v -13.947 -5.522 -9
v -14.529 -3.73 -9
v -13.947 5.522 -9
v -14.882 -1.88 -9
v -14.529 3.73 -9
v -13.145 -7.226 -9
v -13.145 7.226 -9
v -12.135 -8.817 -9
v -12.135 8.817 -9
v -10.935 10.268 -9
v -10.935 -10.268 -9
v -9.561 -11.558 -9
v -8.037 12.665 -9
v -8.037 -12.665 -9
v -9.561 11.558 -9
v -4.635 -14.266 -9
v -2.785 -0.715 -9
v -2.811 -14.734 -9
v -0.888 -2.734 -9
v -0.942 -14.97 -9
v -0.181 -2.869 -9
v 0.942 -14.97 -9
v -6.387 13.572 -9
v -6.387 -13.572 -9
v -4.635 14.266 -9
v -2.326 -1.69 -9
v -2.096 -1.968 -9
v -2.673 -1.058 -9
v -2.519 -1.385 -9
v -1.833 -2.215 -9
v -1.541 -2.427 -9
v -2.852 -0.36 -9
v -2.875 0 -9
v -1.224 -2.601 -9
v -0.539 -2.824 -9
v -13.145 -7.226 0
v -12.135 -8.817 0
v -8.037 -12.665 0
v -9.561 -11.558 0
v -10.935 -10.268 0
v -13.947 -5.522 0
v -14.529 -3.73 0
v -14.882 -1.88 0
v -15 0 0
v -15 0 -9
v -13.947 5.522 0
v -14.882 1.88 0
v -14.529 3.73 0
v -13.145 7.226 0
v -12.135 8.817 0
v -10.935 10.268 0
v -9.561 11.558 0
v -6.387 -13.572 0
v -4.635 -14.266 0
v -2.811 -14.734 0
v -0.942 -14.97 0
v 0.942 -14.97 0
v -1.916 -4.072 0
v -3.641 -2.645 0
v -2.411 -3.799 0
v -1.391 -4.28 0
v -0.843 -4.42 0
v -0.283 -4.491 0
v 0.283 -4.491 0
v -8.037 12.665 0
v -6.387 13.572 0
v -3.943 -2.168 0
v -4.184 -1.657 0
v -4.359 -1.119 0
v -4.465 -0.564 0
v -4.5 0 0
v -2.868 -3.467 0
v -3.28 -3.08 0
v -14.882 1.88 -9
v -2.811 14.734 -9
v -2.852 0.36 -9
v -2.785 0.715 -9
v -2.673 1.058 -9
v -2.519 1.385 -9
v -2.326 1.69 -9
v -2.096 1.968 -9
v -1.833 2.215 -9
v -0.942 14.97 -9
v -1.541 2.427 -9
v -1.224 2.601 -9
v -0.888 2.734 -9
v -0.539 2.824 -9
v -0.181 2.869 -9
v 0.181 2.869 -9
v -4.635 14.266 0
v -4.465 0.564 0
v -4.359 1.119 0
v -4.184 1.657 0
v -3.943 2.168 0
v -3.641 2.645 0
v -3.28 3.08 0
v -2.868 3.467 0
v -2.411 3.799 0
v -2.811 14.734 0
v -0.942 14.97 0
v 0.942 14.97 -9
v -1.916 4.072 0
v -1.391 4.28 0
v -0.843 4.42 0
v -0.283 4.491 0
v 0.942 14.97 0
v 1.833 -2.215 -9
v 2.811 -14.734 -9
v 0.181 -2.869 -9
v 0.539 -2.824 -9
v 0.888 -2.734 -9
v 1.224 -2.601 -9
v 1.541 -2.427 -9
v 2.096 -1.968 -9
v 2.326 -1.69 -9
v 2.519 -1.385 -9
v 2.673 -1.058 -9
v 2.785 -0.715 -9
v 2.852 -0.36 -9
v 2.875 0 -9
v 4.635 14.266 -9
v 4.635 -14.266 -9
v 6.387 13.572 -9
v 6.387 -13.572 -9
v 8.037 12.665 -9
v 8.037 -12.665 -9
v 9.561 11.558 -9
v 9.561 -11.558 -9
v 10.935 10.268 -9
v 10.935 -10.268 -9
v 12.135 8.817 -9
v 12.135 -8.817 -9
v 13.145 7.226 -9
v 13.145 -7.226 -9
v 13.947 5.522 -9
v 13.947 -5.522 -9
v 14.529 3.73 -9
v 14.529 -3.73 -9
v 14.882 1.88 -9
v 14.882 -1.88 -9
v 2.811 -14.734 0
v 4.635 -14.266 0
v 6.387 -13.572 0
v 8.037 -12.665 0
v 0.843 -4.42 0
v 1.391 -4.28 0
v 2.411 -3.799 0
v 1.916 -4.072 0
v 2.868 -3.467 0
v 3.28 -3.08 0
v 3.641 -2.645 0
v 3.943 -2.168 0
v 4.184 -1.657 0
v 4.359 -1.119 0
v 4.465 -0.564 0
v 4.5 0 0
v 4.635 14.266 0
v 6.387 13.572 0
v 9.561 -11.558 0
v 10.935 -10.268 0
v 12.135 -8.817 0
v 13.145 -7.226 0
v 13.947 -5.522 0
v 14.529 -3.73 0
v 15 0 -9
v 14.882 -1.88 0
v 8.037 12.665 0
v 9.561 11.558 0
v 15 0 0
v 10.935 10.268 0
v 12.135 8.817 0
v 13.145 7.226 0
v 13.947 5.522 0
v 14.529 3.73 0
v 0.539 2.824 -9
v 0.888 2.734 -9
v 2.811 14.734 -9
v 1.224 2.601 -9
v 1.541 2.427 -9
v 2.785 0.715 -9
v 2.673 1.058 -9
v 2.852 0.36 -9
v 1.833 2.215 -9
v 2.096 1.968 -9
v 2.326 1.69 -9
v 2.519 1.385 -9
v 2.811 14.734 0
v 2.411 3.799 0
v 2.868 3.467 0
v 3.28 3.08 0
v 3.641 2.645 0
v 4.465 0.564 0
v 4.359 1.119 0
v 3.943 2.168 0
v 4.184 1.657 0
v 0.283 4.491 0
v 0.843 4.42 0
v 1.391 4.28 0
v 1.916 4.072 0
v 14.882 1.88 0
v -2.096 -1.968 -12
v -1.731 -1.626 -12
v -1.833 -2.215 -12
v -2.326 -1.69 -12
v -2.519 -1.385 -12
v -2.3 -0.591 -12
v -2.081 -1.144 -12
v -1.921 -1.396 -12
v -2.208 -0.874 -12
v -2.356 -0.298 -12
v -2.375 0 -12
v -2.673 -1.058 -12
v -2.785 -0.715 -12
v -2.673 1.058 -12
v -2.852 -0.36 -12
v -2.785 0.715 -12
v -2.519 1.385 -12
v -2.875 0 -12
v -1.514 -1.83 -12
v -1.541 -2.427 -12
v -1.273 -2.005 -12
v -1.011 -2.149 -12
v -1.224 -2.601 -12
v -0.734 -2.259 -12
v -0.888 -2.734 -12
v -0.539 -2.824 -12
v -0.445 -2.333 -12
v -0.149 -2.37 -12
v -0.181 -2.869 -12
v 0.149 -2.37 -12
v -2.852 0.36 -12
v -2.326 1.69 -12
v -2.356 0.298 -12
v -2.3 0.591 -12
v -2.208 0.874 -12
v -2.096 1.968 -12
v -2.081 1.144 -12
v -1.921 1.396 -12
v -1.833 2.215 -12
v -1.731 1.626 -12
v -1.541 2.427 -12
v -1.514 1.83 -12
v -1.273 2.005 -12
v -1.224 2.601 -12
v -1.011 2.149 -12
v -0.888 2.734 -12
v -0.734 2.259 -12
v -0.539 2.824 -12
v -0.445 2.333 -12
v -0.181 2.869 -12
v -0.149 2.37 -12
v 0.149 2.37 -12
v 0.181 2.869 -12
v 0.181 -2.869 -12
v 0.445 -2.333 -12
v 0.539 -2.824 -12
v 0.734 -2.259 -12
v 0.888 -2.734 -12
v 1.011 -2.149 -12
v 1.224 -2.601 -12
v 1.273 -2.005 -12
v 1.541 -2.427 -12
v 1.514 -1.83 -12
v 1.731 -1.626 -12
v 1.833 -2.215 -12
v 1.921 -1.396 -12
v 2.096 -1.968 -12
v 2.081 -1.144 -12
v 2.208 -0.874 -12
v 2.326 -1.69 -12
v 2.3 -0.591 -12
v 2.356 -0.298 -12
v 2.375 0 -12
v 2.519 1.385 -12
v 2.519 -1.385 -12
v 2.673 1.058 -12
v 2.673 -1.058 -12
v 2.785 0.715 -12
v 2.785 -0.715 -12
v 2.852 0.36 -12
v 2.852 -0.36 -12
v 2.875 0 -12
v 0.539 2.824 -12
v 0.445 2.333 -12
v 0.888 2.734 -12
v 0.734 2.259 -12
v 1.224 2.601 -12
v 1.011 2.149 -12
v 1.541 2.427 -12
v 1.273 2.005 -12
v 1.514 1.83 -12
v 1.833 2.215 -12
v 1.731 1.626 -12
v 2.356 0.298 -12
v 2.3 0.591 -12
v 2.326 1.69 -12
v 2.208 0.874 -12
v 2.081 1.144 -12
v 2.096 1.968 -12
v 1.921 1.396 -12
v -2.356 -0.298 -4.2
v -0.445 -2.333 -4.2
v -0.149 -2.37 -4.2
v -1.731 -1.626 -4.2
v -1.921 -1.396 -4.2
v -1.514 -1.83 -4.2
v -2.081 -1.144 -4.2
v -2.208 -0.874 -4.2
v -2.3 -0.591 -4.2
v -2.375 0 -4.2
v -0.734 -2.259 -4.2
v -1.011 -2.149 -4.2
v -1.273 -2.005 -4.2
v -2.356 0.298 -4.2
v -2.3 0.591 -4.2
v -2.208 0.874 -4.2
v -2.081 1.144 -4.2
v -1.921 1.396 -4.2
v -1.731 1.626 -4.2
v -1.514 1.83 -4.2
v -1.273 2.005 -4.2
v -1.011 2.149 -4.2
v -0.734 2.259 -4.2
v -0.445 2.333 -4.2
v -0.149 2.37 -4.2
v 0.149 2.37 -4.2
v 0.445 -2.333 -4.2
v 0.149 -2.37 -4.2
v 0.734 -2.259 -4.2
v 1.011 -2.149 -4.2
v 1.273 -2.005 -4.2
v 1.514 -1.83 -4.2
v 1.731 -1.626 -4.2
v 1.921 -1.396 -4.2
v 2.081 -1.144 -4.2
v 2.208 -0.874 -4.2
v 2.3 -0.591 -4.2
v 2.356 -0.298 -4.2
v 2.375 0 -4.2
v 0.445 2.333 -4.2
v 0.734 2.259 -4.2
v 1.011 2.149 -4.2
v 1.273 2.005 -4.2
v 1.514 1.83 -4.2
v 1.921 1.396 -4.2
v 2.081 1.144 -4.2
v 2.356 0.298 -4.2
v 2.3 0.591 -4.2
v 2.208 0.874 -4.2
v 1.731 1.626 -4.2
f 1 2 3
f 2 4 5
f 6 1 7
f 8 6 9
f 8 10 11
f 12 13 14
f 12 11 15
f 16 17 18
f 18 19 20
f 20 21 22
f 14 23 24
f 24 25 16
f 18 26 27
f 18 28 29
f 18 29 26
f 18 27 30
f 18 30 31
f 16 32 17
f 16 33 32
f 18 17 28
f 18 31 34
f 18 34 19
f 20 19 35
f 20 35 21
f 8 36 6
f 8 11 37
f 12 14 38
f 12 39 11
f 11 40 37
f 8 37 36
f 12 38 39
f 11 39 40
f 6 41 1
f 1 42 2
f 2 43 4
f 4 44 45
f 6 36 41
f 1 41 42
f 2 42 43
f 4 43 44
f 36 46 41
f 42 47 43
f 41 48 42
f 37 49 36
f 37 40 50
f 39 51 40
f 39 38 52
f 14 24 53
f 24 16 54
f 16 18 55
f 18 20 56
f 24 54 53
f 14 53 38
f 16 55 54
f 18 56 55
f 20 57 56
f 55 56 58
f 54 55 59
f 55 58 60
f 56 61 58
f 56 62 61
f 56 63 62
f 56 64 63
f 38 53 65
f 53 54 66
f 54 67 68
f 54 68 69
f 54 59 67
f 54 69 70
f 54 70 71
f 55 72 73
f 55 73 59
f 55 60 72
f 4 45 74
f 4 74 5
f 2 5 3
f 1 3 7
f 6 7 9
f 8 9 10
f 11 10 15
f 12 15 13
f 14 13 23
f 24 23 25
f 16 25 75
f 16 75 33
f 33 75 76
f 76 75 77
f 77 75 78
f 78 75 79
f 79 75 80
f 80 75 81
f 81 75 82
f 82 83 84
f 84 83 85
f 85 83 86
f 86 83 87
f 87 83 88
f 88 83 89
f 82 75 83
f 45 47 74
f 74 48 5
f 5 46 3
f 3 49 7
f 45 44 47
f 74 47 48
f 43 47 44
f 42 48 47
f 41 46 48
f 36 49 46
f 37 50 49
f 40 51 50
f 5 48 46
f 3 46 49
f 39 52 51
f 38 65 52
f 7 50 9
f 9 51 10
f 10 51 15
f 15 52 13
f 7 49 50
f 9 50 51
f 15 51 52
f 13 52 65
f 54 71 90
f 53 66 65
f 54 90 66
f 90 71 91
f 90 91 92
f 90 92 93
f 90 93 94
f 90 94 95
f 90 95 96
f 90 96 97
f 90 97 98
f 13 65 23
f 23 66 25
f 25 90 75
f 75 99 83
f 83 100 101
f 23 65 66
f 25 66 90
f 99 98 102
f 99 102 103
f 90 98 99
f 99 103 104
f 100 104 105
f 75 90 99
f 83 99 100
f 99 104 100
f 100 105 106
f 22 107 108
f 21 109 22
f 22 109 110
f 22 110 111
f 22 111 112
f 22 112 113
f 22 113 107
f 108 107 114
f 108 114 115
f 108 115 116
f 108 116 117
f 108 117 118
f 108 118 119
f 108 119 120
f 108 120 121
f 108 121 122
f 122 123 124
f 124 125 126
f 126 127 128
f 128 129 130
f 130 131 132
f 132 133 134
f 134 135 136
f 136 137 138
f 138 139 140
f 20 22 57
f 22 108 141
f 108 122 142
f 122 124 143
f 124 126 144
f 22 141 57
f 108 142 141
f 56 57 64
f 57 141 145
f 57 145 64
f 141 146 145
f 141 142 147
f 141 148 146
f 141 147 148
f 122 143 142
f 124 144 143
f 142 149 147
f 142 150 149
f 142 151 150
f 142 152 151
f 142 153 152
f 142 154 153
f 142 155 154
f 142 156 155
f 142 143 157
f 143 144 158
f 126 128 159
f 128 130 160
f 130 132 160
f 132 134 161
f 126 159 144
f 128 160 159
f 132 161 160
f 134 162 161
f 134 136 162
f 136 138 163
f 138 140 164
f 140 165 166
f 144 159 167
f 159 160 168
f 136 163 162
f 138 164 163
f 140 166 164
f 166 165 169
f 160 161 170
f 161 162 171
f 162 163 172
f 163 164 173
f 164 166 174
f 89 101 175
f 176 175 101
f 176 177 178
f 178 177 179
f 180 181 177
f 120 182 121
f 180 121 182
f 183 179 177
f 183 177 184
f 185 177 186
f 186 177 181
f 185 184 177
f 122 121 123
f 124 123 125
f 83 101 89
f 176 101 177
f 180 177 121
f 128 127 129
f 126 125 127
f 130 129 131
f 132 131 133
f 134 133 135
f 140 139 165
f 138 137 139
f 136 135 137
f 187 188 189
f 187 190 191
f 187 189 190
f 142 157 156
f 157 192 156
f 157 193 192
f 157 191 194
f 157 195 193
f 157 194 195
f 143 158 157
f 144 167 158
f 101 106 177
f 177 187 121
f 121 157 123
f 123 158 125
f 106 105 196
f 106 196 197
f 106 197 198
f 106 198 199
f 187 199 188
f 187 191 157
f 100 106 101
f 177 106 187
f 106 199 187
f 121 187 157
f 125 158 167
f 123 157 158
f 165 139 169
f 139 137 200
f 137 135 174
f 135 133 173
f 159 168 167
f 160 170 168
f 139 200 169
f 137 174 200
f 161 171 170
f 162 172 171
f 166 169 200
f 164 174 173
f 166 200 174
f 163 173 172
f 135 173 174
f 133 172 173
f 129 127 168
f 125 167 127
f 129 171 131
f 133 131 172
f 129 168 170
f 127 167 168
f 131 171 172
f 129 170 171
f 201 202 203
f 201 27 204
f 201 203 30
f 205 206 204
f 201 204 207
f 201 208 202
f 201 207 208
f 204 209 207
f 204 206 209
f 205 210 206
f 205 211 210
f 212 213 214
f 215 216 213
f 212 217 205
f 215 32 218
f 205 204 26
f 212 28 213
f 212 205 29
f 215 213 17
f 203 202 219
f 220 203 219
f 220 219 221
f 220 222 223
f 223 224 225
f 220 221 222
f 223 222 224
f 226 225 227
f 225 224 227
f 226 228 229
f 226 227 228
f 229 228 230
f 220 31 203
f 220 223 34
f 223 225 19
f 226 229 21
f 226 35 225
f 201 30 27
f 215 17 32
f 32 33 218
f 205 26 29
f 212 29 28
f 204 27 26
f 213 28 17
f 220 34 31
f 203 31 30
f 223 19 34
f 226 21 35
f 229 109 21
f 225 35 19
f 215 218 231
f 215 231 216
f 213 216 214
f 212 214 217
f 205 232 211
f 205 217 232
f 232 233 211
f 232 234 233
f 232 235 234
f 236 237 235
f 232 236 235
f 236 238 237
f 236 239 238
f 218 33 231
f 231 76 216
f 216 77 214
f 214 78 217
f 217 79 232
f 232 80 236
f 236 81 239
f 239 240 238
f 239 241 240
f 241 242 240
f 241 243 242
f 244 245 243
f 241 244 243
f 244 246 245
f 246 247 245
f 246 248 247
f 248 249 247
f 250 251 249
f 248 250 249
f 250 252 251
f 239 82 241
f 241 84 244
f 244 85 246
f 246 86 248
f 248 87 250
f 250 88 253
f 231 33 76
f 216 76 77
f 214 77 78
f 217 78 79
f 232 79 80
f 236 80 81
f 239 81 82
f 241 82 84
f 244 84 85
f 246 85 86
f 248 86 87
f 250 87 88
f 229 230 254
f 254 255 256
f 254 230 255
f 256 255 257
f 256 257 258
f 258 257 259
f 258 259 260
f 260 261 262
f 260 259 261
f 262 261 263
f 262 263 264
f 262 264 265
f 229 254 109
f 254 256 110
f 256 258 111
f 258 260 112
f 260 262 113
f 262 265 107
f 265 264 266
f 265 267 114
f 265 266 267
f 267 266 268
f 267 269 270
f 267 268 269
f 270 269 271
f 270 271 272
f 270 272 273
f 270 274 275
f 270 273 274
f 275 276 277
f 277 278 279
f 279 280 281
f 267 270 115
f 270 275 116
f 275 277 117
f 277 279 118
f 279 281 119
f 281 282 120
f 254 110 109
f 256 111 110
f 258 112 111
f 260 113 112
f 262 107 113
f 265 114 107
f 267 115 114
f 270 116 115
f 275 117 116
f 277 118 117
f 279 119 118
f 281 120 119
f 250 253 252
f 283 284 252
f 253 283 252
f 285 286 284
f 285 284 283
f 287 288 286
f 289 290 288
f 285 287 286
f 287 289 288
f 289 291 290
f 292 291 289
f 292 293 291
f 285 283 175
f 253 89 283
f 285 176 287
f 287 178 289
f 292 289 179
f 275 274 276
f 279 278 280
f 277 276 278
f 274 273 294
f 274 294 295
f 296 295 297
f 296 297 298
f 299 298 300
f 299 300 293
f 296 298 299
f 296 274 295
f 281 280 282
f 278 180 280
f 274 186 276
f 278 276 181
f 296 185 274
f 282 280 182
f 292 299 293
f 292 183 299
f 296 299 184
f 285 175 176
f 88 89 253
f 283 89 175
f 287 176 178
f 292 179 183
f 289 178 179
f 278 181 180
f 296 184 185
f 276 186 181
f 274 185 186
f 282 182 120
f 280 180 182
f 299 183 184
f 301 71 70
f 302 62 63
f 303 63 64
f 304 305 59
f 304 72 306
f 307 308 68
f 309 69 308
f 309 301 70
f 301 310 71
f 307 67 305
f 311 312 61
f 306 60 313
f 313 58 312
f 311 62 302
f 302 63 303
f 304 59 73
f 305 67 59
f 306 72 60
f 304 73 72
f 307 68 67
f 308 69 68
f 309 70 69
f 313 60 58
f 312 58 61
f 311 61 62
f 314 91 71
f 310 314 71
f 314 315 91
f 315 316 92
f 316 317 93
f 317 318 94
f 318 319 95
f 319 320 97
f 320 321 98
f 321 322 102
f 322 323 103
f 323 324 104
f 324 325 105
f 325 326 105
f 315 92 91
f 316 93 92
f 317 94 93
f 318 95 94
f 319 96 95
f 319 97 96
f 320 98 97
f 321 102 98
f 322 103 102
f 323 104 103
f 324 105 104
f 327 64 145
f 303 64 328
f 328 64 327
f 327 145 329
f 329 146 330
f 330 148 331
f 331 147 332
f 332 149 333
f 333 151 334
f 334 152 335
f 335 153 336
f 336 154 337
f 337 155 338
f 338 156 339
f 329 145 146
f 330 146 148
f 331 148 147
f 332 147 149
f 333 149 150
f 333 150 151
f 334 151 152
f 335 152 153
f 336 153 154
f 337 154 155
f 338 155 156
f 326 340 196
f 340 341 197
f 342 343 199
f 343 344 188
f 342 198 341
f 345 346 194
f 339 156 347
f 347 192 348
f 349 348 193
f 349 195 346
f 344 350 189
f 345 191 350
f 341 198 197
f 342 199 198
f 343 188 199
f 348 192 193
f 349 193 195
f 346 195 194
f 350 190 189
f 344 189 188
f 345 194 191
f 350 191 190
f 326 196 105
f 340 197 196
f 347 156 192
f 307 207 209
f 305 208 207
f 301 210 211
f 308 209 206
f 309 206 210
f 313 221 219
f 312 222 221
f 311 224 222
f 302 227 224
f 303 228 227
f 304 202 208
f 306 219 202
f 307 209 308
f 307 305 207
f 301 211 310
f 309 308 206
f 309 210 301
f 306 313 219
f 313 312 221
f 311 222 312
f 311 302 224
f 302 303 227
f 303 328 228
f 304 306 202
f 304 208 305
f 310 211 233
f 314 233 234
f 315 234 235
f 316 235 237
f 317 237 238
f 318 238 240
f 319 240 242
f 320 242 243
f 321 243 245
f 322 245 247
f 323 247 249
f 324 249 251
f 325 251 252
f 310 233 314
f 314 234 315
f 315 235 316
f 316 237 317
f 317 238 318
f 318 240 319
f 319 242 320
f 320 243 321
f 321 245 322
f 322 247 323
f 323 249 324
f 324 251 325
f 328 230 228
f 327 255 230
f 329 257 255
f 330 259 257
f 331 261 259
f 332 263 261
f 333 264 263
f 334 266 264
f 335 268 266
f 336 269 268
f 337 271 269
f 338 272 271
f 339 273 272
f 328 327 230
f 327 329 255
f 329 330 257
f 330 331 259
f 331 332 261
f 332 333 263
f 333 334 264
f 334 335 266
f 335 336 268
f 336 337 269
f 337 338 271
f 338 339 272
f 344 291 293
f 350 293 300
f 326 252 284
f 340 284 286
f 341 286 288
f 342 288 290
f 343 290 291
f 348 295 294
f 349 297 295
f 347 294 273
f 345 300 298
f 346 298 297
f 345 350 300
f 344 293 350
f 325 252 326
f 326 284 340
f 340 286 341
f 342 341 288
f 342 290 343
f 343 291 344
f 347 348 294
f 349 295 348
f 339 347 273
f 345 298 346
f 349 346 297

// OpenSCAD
$fn = 50;


difference() {
	union() {
		translate(v = [0, 0, -9.0000000000]) {
			cylinder(h = 9, r = 15.0000000000);
		}
		#translate(v = [0, 0, -12.0000000000]) {
			cylinder(h = 12, r = 2.8750000000);
		}
	}
	union() {
		translate(v = [0, 0, 0]) {
			rotate(a = [0, 0, 0]) {
				difference() {
					union() {
						translate(v = [0, 0, -12.0000000000]) {
							cylinder(h = 12, r = 2.2500000000);
						}
						translate(v = [0, 0, -4.2000000000]) {
							cylinder(h = 4.2000000000, r1 = 2.3750000000, r2 = 4.5000000000);
						}
						translate(v = [0, 0, -12.0000000000]) {
							cylinder(h = 12, r = 2.3750000000);
						}
						translate(v = [0, 0, -12.0000000000]) {
							cylinder(h = 12, r = 2.2500000000);
						}
					}
					union();
				}
			}
		}
	}
}
